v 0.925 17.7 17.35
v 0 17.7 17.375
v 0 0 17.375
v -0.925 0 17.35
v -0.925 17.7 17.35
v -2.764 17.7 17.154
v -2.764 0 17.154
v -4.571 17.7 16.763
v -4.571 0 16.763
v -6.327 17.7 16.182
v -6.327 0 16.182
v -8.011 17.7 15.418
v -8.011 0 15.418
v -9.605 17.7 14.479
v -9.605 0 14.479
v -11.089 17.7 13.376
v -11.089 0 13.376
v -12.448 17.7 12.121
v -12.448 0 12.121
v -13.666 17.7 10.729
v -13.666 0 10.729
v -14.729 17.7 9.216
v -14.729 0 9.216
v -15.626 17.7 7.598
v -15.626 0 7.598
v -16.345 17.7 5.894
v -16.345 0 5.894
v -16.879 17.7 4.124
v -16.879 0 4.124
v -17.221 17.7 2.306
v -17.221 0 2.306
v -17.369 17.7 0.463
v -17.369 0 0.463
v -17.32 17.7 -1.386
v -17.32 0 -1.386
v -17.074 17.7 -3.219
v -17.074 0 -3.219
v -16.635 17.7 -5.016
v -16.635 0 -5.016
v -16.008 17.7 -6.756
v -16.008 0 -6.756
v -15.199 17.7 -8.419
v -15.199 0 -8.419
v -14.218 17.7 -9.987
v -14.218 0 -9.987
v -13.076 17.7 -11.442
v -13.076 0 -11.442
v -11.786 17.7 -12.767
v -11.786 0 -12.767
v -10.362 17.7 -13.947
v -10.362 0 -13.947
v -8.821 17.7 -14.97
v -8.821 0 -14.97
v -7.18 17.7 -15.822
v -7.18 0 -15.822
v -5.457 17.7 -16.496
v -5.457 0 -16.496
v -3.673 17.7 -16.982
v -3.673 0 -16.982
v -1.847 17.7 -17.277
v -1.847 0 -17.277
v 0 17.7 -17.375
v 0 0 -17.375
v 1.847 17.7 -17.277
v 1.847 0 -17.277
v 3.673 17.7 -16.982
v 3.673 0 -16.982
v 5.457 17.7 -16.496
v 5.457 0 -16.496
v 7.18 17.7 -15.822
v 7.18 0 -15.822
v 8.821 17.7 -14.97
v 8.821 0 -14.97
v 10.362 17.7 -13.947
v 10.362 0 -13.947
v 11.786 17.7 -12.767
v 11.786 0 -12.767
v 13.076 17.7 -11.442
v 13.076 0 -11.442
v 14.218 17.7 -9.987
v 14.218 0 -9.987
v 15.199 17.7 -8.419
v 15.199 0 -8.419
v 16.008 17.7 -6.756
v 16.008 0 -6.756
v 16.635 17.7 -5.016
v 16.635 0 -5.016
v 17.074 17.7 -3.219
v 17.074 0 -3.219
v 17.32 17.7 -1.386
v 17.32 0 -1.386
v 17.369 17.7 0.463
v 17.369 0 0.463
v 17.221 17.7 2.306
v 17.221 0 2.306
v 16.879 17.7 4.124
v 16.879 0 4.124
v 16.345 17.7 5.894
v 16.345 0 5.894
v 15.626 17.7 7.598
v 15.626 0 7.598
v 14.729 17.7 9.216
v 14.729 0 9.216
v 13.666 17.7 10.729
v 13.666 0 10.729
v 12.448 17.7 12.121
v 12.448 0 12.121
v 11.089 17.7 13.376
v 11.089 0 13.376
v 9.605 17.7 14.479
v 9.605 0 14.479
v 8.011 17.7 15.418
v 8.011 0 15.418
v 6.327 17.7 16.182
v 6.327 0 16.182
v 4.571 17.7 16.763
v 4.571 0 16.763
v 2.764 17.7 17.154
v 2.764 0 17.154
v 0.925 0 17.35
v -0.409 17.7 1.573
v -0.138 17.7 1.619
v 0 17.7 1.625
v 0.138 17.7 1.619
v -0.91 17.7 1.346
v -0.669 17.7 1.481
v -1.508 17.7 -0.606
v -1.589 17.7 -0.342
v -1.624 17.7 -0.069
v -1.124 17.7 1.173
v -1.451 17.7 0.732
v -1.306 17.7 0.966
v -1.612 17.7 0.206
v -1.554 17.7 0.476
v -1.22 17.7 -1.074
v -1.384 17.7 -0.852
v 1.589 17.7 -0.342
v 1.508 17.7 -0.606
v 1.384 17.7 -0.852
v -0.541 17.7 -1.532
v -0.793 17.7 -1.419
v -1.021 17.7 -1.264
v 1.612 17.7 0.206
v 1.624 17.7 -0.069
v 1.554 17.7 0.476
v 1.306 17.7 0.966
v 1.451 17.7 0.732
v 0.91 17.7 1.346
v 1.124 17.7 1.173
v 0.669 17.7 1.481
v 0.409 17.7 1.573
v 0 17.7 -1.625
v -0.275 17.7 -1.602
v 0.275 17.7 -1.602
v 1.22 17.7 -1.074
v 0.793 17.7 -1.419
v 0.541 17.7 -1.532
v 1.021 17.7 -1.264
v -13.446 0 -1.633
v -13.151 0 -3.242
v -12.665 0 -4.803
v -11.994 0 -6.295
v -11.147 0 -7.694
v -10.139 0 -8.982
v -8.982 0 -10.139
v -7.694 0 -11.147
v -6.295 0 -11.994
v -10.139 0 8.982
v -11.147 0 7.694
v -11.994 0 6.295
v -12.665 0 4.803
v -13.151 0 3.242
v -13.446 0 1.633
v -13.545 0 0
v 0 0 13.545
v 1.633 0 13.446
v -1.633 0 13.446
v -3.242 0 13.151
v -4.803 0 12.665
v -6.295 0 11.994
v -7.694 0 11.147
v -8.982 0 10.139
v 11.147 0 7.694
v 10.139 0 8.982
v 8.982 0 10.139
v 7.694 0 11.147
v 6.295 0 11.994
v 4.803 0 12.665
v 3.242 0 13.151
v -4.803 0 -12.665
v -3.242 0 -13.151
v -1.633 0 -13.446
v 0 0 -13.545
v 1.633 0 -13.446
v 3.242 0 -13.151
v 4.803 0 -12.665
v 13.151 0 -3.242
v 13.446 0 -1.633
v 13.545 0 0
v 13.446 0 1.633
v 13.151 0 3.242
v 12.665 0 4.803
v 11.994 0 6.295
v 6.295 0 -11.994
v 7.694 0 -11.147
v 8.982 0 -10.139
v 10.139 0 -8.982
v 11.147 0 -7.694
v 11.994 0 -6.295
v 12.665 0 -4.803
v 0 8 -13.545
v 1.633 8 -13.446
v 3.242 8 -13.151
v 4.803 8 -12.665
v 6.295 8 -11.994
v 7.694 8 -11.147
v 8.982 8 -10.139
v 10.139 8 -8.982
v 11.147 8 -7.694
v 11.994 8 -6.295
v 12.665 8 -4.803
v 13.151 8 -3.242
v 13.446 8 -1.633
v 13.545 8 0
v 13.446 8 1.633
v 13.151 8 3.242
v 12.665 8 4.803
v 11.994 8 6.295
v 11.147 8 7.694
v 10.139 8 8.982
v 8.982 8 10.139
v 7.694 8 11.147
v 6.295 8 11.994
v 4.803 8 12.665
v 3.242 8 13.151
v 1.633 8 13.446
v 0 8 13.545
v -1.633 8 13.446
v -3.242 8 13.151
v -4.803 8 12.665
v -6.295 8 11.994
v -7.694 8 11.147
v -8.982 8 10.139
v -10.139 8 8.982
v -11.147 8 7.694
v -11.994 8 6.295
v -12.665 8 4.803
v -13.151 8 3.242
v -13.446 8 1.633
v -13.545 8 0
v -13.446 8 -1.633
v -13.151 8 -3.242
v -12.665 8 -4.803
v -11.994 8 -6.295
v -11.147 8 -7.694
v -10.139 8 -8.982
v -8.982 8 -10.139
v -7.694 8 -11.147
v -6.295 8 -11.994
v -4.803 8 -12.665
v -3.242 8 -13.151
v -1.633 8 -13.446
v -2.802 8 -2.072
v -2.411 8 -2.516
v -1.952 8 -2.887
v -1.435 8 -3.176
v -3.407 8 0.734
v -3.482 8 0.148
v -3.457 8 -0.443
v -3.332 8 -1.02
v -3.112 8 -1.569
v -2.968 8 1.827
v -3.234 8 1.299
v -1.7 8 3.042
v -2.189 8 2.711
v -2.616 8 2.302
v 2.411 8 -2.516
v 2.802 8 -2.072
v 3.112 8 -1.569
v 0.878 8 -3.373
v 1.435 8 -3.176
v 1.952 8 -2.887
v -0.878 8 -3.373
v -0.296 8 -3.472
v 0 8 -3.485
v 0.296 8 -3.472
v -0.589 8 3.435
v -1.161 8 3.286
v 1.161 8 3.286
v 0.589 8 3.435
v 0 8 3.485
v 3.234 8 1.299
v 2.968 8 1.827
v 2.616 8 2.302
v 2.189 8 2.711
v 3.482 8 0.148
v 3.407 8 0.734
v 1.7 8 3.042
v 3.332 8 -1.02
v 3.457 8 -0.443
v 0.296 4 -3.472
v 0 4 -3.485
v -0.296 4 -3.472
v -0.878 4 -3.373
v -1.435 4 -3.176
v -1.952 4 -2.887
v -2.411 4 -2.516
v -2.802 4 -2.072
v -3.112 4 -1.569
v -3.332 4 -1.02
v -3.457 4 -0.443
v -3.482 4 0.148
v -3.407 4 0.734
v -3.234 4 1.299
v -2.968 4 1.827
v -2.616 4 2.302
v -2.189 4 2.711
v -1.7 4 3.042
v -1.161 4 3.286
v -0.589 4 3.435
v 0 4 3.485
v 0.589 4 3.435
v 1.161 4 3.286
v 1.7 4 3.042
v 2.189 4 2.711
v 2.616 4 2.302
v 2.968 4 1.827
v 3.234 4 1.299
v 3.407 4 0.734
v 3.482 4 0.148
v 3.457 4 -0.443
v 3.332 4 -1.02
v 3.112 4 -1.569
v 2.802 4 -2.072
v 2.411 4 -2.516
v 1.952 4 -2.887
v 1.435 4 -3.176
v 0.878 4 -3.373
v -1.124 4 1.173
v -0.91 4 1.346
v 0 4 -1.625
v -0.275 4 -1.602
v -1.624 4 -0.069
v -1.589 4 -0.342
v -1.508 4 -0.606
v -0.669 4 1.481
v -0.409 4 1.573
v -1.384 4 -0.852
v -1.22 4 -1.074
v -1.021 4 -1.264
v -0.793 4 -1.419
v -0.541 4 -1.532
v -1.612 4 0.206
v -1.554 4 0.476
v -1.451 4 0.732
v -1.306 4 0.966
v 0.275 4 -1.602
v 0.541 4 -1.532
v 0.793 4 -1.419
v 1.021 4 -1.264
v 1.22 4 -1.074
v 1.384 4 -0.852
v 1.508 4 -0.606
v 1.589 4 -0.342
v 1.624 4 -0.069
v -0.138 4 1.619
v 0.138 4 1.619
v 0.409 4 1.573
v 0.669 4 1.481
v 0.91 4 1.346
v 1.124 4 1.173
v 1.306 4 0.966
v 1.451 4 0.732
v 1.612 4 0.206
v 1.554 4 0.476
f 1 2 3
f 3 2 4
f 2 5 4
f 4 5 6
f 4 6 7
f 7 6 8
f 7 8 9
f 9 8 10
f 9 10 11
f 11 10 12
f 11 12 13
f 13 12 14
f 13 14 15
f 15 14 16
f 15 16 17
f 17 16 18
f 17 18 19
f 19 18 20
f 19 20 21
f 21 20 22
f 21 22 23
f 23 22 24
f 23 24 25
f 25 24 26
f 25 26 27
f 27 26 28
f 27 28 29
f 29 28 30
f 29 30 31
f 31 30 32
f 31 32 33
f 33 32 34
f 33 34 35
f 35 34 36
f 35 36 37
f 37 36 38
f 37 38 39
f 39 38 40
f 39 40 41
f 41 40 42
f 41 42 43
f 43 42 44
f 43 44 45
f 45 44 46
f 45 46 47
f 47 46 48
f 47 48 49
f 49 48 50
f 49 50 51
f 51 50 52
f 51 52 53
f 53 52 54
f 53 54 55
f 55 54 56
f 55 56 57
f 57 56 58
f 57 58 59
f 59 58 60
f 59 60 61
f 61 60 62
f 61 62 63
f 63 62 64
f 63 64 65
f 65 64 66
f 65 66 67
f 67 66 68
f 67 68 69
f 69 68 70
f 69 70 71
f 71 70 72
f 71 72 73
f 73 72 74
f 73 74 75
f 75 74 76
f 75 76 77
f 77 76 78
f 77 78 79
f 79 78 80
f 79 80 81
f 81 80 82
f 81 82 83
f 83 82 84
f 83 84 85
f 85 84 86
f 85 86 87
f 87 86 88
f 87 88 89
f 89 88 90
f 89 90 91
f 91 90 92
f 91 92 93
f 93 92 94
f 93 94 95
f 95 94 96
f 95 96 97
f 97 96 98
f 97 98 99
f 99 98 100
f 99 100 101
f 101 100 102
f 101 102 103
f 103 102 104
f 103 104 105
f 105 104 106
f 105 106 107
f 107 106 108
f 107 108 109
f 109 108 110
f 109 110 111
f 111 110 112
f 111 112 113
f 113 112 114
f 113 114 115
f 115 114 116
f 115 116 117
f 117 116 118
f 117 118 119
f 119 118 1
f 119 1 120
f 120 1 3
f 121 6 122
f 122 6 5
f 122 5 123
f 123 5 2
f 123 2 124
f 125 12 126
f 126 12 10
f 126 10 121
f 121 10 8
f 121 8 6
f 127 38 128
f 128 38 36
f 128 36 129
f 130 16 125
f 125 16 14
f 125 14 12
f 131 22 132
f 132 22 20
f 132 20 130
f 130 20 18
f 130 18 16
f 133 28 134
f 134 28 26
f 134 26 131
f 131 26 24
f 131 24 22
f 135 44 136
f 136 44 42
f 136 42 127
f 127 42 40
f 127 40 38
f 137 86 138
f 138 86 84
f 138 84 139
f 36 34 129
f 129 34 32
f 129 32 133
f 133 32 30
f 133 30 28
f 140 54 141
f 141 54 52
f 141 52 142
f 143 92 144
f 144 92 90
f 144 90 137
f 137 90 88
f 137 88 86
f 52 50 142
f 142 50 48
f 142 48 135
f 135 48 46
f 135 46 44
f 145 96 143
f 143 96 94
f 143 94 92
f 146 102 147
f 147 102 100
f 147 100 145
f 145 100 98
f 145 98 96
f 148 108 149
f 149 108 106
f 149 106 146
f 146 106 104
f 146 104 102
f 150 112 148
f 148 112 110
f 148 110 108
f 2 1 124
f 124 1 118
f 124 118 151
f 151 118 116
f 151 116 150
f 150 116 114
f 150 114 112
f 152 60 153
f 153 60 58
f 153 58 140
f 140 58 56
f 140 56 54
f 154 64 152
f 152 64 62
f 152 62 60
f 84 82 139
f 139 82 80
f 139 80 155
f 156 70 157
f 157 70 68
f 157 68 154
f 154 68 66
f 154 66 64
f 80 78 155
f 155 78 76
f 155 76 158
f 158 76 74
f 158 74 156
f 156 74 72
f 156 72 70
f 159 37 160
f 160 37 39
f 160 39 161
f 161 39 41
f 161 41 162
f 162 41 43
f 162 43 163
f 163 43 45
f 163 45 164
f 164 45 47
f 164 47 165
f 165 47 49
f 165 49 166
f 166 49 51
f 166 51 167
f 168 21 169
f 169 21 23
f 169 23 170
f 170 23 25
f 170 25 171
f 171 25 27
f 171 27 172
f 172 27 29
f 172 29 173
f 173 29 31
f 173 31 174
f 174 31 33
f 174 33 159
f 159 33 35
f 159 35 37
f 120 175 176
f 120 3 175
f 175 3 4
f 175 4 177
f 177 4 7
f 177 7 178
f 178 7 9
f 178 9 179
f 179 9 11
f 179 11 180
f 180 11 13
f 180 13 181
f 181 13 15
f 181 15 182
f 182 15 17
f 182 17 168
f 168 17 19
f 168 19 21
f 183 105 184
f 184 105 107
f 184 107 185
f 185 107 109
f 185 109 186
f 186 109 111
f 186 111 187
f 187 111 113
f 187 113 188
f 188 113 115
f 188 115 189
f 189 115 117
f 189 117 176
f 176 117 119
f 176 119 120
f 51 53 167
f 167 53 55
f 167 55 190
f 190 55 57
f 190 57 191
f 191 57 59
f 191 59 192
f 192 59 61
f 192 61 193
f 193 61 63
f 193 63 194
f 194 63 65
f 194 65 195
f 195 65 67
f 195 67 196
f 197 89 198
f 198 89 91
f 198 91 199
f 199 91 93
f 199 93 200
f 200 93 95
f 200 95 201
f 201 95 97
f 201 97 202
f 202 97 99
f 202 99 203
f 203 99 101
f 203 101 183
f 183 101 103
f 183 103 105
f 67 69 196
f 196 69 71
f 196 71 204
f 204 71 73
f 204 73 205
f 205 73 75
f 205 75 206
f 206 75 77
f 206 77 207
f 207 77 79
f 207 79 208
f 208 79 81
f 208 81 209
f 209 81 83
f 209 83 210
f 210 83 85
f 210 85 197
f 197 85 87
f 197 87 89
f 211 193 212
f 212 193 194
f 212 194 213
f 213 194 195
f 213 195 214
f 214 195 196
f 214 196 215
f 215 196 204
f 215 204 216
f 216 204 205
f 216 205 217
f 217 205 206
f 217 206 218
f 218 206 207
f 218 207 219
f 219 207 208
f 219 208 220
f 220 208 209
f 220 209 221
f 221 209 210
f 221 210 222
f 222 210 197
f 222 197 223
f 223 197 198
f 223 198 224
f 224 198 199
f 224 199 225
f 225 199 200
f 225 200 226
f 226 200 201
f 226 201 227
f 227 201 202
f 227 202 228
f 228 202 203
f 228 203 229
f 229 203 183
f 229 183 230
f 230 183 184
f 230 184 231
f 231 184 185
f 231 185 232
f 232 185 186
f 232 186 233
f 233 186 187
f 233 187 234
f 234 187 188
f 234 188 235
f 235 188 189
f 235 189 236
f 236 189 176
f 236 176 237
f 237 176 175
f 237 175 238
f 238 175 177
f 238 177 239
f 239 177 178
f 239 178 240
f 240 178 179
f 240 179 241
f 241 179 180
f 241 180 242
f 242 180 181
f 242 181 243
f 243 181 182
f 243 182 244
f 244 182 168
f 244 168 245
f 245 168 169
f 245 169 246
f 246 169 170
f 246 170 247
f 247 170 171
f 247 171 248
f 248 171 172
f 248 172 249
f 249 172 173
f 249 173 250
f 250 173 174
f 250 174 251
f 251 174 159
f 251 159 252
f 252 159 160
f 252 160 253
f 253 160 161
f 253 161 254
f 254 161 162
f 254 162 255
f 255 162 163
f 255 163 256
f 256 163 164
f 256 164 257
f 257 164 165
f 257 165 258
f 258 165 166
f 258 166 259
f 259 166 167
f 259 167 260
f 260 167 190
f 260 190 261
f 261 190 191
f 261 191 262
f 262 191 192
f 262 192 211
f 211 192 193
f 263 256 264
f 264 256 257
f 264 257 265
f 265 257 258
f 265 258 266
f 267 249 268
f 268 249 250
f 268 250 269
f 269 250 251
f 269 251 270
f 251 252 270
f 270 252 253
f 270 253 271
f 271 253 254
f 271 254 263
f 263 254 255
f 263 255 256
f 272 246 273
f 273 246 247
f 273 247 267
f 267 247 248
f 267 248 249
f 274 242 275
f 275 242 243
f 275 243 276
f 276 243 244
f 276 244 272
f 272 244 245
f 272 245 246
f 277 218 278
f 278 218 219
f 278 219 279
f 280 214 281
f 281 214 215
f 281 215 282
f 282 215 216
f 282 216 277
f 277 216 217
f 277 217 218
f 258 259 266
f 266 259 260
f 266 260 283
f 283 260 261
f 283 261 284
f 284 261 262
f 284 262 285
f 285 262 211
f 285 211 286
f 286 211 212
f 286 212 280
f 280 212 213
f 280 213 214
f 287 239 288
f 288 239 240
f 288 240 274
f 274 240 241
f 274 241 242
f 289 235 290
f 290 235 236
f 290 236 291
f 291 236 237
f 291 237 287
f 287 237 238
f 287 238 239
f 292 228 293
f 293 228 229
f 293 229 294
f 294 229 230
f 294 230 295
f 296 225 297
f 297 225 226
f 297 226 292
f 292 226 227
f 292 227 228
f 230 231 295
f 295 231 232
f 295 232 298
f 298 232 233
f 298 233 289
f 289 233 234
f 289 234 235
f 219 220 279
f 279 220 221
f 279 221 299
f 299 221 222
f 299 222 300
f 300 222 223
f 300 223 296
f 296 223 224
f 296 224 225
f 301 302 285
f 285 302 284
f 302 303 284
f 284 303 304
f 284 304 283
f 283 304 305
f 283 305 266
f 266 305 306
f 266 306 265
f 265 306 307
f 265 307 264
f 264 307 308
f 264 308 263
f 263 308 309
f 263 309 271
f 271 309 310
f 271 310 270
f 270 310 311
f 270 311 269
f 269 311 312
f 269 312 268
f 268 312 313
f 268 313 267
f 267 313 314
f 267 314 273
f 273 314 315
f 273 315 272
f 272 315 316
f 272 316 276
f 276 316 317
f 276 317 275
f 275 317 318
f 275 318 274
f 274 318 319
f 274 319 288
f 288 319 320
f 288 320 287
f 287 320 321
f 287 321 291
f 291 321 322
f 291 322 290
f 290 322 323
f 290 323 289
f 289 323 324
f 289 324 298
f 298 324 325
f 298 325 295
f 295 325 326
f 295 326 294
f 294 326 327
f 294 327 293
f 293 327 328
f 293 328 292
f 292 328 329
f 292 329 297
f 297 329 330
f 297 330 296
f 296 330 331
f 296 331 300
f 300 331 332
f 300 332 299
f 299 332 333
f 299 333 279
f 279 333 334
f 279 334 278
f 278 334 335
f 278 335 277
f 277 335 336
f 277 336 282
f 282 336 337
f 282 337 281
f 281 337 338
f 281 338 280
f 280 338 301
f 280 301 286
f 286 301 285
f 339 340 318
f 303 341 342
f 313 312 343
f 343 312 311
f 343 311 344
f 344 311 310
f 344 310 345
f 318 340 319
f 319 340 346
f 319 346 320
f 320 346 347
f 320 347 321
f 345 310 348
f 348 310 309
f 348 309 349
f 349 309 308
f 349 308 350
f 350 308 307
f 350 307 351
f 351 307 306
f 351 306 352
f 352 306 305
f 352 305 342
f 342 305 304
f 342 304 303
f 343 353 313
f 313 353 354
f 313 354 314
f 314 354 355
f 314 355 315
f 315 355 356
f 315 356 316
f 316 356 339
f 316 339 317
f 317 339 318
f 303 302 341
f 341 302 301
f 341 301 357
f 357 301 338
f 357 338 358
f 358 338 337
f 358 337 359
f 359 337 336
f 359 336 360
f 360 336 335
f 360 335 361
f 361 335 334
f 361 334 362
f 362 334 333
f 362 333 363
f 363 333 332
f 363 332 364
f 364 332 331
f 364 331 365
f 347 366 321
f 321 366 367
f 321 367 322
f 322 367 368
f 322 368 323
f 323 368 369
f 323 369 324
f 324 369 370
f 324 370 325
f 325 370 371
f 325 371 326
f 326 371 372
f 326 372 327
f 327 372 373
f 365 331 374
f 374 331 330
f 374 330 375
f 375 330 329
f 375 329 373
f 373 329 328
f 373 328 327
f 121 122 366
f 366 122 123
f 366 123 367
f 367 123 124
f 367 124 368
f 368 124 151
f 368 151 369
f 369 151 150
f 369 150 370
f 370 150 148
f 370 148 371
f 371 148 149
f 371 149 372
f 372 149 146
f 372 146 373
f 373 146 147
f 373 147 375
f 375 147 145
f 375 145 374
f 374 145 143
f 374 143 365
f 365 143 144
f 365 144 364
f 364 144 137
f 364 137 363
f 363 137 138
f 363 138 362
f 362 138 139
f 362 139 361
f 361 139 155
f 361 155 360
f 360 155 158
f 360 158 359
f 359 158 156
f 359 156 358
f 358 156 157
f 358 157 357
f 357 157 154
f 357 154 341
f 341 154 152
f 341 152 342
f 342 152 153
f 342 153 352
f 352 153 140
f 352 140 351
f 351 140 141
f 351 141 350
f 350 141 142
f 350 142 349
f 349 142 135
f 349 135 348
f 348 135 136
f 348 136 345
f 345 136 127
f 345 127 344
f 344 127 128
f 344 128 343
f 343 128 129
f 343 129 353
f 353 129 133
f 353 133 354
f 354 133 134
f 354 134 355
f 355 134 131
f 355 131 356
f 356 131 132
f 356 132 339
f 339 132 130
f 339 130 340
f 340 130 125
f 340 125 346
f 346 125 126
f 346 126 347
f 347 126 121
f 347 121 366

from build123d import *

# Parameters (mm, degrees)
SKETCH1_R           = 17.375
BOSS_EXTRUDE1_DEPTH = 17.7
SKETCH7_R           = 13.545
CUT_EXTRUDE4_DEPTH  = 8
SKETCH10_R          = 3.485
BOSS_EXTRUDE3_DEPTH = 4
SKETCH11_R          = 1.625
CUT_EXTRUDE5_DEPTH  = 13.7


with BuildPart() as part:
    # Sketch1 → Boss-Extrude1 (new body)
    with BuildSketch(Plane(origin=(0, 0, 0), x_dir=(1, 0, 0), z_dir=(0, 1, 0))):
        Circle(SKETCH1_R)
    extrude(amount=BOSS_EXTRUDE1_DEPTH)

    # Sketch7 → Cut-Extrude4 (cut)
    with BuildSketch(Plane.XZ):
        Circle(SKETCH7_R)
    extrude(amount=-CUT_EXTRUDE4_DEPTH, mode=Mode.SUBTRACT)

    # Sketch10 → Boss-Extrude3 (add)
    with BuildSketch(Plane.XZ.offset(-8)):
        Circle(SKETCH10_R)
    extrude(amount=BOSS_EXTRUDE3_DEPTH)

    # Sketch11 → Cut-Extrude5 (cut)
    with BuildSketch(Plane.XZ.offset(-4)):
        Circle(SKETCH11_R)
    extrude(amount=-CUT_EXTRUDE5_DEPTH, mode=Mode.SUBTRACT)


solid = part.part
